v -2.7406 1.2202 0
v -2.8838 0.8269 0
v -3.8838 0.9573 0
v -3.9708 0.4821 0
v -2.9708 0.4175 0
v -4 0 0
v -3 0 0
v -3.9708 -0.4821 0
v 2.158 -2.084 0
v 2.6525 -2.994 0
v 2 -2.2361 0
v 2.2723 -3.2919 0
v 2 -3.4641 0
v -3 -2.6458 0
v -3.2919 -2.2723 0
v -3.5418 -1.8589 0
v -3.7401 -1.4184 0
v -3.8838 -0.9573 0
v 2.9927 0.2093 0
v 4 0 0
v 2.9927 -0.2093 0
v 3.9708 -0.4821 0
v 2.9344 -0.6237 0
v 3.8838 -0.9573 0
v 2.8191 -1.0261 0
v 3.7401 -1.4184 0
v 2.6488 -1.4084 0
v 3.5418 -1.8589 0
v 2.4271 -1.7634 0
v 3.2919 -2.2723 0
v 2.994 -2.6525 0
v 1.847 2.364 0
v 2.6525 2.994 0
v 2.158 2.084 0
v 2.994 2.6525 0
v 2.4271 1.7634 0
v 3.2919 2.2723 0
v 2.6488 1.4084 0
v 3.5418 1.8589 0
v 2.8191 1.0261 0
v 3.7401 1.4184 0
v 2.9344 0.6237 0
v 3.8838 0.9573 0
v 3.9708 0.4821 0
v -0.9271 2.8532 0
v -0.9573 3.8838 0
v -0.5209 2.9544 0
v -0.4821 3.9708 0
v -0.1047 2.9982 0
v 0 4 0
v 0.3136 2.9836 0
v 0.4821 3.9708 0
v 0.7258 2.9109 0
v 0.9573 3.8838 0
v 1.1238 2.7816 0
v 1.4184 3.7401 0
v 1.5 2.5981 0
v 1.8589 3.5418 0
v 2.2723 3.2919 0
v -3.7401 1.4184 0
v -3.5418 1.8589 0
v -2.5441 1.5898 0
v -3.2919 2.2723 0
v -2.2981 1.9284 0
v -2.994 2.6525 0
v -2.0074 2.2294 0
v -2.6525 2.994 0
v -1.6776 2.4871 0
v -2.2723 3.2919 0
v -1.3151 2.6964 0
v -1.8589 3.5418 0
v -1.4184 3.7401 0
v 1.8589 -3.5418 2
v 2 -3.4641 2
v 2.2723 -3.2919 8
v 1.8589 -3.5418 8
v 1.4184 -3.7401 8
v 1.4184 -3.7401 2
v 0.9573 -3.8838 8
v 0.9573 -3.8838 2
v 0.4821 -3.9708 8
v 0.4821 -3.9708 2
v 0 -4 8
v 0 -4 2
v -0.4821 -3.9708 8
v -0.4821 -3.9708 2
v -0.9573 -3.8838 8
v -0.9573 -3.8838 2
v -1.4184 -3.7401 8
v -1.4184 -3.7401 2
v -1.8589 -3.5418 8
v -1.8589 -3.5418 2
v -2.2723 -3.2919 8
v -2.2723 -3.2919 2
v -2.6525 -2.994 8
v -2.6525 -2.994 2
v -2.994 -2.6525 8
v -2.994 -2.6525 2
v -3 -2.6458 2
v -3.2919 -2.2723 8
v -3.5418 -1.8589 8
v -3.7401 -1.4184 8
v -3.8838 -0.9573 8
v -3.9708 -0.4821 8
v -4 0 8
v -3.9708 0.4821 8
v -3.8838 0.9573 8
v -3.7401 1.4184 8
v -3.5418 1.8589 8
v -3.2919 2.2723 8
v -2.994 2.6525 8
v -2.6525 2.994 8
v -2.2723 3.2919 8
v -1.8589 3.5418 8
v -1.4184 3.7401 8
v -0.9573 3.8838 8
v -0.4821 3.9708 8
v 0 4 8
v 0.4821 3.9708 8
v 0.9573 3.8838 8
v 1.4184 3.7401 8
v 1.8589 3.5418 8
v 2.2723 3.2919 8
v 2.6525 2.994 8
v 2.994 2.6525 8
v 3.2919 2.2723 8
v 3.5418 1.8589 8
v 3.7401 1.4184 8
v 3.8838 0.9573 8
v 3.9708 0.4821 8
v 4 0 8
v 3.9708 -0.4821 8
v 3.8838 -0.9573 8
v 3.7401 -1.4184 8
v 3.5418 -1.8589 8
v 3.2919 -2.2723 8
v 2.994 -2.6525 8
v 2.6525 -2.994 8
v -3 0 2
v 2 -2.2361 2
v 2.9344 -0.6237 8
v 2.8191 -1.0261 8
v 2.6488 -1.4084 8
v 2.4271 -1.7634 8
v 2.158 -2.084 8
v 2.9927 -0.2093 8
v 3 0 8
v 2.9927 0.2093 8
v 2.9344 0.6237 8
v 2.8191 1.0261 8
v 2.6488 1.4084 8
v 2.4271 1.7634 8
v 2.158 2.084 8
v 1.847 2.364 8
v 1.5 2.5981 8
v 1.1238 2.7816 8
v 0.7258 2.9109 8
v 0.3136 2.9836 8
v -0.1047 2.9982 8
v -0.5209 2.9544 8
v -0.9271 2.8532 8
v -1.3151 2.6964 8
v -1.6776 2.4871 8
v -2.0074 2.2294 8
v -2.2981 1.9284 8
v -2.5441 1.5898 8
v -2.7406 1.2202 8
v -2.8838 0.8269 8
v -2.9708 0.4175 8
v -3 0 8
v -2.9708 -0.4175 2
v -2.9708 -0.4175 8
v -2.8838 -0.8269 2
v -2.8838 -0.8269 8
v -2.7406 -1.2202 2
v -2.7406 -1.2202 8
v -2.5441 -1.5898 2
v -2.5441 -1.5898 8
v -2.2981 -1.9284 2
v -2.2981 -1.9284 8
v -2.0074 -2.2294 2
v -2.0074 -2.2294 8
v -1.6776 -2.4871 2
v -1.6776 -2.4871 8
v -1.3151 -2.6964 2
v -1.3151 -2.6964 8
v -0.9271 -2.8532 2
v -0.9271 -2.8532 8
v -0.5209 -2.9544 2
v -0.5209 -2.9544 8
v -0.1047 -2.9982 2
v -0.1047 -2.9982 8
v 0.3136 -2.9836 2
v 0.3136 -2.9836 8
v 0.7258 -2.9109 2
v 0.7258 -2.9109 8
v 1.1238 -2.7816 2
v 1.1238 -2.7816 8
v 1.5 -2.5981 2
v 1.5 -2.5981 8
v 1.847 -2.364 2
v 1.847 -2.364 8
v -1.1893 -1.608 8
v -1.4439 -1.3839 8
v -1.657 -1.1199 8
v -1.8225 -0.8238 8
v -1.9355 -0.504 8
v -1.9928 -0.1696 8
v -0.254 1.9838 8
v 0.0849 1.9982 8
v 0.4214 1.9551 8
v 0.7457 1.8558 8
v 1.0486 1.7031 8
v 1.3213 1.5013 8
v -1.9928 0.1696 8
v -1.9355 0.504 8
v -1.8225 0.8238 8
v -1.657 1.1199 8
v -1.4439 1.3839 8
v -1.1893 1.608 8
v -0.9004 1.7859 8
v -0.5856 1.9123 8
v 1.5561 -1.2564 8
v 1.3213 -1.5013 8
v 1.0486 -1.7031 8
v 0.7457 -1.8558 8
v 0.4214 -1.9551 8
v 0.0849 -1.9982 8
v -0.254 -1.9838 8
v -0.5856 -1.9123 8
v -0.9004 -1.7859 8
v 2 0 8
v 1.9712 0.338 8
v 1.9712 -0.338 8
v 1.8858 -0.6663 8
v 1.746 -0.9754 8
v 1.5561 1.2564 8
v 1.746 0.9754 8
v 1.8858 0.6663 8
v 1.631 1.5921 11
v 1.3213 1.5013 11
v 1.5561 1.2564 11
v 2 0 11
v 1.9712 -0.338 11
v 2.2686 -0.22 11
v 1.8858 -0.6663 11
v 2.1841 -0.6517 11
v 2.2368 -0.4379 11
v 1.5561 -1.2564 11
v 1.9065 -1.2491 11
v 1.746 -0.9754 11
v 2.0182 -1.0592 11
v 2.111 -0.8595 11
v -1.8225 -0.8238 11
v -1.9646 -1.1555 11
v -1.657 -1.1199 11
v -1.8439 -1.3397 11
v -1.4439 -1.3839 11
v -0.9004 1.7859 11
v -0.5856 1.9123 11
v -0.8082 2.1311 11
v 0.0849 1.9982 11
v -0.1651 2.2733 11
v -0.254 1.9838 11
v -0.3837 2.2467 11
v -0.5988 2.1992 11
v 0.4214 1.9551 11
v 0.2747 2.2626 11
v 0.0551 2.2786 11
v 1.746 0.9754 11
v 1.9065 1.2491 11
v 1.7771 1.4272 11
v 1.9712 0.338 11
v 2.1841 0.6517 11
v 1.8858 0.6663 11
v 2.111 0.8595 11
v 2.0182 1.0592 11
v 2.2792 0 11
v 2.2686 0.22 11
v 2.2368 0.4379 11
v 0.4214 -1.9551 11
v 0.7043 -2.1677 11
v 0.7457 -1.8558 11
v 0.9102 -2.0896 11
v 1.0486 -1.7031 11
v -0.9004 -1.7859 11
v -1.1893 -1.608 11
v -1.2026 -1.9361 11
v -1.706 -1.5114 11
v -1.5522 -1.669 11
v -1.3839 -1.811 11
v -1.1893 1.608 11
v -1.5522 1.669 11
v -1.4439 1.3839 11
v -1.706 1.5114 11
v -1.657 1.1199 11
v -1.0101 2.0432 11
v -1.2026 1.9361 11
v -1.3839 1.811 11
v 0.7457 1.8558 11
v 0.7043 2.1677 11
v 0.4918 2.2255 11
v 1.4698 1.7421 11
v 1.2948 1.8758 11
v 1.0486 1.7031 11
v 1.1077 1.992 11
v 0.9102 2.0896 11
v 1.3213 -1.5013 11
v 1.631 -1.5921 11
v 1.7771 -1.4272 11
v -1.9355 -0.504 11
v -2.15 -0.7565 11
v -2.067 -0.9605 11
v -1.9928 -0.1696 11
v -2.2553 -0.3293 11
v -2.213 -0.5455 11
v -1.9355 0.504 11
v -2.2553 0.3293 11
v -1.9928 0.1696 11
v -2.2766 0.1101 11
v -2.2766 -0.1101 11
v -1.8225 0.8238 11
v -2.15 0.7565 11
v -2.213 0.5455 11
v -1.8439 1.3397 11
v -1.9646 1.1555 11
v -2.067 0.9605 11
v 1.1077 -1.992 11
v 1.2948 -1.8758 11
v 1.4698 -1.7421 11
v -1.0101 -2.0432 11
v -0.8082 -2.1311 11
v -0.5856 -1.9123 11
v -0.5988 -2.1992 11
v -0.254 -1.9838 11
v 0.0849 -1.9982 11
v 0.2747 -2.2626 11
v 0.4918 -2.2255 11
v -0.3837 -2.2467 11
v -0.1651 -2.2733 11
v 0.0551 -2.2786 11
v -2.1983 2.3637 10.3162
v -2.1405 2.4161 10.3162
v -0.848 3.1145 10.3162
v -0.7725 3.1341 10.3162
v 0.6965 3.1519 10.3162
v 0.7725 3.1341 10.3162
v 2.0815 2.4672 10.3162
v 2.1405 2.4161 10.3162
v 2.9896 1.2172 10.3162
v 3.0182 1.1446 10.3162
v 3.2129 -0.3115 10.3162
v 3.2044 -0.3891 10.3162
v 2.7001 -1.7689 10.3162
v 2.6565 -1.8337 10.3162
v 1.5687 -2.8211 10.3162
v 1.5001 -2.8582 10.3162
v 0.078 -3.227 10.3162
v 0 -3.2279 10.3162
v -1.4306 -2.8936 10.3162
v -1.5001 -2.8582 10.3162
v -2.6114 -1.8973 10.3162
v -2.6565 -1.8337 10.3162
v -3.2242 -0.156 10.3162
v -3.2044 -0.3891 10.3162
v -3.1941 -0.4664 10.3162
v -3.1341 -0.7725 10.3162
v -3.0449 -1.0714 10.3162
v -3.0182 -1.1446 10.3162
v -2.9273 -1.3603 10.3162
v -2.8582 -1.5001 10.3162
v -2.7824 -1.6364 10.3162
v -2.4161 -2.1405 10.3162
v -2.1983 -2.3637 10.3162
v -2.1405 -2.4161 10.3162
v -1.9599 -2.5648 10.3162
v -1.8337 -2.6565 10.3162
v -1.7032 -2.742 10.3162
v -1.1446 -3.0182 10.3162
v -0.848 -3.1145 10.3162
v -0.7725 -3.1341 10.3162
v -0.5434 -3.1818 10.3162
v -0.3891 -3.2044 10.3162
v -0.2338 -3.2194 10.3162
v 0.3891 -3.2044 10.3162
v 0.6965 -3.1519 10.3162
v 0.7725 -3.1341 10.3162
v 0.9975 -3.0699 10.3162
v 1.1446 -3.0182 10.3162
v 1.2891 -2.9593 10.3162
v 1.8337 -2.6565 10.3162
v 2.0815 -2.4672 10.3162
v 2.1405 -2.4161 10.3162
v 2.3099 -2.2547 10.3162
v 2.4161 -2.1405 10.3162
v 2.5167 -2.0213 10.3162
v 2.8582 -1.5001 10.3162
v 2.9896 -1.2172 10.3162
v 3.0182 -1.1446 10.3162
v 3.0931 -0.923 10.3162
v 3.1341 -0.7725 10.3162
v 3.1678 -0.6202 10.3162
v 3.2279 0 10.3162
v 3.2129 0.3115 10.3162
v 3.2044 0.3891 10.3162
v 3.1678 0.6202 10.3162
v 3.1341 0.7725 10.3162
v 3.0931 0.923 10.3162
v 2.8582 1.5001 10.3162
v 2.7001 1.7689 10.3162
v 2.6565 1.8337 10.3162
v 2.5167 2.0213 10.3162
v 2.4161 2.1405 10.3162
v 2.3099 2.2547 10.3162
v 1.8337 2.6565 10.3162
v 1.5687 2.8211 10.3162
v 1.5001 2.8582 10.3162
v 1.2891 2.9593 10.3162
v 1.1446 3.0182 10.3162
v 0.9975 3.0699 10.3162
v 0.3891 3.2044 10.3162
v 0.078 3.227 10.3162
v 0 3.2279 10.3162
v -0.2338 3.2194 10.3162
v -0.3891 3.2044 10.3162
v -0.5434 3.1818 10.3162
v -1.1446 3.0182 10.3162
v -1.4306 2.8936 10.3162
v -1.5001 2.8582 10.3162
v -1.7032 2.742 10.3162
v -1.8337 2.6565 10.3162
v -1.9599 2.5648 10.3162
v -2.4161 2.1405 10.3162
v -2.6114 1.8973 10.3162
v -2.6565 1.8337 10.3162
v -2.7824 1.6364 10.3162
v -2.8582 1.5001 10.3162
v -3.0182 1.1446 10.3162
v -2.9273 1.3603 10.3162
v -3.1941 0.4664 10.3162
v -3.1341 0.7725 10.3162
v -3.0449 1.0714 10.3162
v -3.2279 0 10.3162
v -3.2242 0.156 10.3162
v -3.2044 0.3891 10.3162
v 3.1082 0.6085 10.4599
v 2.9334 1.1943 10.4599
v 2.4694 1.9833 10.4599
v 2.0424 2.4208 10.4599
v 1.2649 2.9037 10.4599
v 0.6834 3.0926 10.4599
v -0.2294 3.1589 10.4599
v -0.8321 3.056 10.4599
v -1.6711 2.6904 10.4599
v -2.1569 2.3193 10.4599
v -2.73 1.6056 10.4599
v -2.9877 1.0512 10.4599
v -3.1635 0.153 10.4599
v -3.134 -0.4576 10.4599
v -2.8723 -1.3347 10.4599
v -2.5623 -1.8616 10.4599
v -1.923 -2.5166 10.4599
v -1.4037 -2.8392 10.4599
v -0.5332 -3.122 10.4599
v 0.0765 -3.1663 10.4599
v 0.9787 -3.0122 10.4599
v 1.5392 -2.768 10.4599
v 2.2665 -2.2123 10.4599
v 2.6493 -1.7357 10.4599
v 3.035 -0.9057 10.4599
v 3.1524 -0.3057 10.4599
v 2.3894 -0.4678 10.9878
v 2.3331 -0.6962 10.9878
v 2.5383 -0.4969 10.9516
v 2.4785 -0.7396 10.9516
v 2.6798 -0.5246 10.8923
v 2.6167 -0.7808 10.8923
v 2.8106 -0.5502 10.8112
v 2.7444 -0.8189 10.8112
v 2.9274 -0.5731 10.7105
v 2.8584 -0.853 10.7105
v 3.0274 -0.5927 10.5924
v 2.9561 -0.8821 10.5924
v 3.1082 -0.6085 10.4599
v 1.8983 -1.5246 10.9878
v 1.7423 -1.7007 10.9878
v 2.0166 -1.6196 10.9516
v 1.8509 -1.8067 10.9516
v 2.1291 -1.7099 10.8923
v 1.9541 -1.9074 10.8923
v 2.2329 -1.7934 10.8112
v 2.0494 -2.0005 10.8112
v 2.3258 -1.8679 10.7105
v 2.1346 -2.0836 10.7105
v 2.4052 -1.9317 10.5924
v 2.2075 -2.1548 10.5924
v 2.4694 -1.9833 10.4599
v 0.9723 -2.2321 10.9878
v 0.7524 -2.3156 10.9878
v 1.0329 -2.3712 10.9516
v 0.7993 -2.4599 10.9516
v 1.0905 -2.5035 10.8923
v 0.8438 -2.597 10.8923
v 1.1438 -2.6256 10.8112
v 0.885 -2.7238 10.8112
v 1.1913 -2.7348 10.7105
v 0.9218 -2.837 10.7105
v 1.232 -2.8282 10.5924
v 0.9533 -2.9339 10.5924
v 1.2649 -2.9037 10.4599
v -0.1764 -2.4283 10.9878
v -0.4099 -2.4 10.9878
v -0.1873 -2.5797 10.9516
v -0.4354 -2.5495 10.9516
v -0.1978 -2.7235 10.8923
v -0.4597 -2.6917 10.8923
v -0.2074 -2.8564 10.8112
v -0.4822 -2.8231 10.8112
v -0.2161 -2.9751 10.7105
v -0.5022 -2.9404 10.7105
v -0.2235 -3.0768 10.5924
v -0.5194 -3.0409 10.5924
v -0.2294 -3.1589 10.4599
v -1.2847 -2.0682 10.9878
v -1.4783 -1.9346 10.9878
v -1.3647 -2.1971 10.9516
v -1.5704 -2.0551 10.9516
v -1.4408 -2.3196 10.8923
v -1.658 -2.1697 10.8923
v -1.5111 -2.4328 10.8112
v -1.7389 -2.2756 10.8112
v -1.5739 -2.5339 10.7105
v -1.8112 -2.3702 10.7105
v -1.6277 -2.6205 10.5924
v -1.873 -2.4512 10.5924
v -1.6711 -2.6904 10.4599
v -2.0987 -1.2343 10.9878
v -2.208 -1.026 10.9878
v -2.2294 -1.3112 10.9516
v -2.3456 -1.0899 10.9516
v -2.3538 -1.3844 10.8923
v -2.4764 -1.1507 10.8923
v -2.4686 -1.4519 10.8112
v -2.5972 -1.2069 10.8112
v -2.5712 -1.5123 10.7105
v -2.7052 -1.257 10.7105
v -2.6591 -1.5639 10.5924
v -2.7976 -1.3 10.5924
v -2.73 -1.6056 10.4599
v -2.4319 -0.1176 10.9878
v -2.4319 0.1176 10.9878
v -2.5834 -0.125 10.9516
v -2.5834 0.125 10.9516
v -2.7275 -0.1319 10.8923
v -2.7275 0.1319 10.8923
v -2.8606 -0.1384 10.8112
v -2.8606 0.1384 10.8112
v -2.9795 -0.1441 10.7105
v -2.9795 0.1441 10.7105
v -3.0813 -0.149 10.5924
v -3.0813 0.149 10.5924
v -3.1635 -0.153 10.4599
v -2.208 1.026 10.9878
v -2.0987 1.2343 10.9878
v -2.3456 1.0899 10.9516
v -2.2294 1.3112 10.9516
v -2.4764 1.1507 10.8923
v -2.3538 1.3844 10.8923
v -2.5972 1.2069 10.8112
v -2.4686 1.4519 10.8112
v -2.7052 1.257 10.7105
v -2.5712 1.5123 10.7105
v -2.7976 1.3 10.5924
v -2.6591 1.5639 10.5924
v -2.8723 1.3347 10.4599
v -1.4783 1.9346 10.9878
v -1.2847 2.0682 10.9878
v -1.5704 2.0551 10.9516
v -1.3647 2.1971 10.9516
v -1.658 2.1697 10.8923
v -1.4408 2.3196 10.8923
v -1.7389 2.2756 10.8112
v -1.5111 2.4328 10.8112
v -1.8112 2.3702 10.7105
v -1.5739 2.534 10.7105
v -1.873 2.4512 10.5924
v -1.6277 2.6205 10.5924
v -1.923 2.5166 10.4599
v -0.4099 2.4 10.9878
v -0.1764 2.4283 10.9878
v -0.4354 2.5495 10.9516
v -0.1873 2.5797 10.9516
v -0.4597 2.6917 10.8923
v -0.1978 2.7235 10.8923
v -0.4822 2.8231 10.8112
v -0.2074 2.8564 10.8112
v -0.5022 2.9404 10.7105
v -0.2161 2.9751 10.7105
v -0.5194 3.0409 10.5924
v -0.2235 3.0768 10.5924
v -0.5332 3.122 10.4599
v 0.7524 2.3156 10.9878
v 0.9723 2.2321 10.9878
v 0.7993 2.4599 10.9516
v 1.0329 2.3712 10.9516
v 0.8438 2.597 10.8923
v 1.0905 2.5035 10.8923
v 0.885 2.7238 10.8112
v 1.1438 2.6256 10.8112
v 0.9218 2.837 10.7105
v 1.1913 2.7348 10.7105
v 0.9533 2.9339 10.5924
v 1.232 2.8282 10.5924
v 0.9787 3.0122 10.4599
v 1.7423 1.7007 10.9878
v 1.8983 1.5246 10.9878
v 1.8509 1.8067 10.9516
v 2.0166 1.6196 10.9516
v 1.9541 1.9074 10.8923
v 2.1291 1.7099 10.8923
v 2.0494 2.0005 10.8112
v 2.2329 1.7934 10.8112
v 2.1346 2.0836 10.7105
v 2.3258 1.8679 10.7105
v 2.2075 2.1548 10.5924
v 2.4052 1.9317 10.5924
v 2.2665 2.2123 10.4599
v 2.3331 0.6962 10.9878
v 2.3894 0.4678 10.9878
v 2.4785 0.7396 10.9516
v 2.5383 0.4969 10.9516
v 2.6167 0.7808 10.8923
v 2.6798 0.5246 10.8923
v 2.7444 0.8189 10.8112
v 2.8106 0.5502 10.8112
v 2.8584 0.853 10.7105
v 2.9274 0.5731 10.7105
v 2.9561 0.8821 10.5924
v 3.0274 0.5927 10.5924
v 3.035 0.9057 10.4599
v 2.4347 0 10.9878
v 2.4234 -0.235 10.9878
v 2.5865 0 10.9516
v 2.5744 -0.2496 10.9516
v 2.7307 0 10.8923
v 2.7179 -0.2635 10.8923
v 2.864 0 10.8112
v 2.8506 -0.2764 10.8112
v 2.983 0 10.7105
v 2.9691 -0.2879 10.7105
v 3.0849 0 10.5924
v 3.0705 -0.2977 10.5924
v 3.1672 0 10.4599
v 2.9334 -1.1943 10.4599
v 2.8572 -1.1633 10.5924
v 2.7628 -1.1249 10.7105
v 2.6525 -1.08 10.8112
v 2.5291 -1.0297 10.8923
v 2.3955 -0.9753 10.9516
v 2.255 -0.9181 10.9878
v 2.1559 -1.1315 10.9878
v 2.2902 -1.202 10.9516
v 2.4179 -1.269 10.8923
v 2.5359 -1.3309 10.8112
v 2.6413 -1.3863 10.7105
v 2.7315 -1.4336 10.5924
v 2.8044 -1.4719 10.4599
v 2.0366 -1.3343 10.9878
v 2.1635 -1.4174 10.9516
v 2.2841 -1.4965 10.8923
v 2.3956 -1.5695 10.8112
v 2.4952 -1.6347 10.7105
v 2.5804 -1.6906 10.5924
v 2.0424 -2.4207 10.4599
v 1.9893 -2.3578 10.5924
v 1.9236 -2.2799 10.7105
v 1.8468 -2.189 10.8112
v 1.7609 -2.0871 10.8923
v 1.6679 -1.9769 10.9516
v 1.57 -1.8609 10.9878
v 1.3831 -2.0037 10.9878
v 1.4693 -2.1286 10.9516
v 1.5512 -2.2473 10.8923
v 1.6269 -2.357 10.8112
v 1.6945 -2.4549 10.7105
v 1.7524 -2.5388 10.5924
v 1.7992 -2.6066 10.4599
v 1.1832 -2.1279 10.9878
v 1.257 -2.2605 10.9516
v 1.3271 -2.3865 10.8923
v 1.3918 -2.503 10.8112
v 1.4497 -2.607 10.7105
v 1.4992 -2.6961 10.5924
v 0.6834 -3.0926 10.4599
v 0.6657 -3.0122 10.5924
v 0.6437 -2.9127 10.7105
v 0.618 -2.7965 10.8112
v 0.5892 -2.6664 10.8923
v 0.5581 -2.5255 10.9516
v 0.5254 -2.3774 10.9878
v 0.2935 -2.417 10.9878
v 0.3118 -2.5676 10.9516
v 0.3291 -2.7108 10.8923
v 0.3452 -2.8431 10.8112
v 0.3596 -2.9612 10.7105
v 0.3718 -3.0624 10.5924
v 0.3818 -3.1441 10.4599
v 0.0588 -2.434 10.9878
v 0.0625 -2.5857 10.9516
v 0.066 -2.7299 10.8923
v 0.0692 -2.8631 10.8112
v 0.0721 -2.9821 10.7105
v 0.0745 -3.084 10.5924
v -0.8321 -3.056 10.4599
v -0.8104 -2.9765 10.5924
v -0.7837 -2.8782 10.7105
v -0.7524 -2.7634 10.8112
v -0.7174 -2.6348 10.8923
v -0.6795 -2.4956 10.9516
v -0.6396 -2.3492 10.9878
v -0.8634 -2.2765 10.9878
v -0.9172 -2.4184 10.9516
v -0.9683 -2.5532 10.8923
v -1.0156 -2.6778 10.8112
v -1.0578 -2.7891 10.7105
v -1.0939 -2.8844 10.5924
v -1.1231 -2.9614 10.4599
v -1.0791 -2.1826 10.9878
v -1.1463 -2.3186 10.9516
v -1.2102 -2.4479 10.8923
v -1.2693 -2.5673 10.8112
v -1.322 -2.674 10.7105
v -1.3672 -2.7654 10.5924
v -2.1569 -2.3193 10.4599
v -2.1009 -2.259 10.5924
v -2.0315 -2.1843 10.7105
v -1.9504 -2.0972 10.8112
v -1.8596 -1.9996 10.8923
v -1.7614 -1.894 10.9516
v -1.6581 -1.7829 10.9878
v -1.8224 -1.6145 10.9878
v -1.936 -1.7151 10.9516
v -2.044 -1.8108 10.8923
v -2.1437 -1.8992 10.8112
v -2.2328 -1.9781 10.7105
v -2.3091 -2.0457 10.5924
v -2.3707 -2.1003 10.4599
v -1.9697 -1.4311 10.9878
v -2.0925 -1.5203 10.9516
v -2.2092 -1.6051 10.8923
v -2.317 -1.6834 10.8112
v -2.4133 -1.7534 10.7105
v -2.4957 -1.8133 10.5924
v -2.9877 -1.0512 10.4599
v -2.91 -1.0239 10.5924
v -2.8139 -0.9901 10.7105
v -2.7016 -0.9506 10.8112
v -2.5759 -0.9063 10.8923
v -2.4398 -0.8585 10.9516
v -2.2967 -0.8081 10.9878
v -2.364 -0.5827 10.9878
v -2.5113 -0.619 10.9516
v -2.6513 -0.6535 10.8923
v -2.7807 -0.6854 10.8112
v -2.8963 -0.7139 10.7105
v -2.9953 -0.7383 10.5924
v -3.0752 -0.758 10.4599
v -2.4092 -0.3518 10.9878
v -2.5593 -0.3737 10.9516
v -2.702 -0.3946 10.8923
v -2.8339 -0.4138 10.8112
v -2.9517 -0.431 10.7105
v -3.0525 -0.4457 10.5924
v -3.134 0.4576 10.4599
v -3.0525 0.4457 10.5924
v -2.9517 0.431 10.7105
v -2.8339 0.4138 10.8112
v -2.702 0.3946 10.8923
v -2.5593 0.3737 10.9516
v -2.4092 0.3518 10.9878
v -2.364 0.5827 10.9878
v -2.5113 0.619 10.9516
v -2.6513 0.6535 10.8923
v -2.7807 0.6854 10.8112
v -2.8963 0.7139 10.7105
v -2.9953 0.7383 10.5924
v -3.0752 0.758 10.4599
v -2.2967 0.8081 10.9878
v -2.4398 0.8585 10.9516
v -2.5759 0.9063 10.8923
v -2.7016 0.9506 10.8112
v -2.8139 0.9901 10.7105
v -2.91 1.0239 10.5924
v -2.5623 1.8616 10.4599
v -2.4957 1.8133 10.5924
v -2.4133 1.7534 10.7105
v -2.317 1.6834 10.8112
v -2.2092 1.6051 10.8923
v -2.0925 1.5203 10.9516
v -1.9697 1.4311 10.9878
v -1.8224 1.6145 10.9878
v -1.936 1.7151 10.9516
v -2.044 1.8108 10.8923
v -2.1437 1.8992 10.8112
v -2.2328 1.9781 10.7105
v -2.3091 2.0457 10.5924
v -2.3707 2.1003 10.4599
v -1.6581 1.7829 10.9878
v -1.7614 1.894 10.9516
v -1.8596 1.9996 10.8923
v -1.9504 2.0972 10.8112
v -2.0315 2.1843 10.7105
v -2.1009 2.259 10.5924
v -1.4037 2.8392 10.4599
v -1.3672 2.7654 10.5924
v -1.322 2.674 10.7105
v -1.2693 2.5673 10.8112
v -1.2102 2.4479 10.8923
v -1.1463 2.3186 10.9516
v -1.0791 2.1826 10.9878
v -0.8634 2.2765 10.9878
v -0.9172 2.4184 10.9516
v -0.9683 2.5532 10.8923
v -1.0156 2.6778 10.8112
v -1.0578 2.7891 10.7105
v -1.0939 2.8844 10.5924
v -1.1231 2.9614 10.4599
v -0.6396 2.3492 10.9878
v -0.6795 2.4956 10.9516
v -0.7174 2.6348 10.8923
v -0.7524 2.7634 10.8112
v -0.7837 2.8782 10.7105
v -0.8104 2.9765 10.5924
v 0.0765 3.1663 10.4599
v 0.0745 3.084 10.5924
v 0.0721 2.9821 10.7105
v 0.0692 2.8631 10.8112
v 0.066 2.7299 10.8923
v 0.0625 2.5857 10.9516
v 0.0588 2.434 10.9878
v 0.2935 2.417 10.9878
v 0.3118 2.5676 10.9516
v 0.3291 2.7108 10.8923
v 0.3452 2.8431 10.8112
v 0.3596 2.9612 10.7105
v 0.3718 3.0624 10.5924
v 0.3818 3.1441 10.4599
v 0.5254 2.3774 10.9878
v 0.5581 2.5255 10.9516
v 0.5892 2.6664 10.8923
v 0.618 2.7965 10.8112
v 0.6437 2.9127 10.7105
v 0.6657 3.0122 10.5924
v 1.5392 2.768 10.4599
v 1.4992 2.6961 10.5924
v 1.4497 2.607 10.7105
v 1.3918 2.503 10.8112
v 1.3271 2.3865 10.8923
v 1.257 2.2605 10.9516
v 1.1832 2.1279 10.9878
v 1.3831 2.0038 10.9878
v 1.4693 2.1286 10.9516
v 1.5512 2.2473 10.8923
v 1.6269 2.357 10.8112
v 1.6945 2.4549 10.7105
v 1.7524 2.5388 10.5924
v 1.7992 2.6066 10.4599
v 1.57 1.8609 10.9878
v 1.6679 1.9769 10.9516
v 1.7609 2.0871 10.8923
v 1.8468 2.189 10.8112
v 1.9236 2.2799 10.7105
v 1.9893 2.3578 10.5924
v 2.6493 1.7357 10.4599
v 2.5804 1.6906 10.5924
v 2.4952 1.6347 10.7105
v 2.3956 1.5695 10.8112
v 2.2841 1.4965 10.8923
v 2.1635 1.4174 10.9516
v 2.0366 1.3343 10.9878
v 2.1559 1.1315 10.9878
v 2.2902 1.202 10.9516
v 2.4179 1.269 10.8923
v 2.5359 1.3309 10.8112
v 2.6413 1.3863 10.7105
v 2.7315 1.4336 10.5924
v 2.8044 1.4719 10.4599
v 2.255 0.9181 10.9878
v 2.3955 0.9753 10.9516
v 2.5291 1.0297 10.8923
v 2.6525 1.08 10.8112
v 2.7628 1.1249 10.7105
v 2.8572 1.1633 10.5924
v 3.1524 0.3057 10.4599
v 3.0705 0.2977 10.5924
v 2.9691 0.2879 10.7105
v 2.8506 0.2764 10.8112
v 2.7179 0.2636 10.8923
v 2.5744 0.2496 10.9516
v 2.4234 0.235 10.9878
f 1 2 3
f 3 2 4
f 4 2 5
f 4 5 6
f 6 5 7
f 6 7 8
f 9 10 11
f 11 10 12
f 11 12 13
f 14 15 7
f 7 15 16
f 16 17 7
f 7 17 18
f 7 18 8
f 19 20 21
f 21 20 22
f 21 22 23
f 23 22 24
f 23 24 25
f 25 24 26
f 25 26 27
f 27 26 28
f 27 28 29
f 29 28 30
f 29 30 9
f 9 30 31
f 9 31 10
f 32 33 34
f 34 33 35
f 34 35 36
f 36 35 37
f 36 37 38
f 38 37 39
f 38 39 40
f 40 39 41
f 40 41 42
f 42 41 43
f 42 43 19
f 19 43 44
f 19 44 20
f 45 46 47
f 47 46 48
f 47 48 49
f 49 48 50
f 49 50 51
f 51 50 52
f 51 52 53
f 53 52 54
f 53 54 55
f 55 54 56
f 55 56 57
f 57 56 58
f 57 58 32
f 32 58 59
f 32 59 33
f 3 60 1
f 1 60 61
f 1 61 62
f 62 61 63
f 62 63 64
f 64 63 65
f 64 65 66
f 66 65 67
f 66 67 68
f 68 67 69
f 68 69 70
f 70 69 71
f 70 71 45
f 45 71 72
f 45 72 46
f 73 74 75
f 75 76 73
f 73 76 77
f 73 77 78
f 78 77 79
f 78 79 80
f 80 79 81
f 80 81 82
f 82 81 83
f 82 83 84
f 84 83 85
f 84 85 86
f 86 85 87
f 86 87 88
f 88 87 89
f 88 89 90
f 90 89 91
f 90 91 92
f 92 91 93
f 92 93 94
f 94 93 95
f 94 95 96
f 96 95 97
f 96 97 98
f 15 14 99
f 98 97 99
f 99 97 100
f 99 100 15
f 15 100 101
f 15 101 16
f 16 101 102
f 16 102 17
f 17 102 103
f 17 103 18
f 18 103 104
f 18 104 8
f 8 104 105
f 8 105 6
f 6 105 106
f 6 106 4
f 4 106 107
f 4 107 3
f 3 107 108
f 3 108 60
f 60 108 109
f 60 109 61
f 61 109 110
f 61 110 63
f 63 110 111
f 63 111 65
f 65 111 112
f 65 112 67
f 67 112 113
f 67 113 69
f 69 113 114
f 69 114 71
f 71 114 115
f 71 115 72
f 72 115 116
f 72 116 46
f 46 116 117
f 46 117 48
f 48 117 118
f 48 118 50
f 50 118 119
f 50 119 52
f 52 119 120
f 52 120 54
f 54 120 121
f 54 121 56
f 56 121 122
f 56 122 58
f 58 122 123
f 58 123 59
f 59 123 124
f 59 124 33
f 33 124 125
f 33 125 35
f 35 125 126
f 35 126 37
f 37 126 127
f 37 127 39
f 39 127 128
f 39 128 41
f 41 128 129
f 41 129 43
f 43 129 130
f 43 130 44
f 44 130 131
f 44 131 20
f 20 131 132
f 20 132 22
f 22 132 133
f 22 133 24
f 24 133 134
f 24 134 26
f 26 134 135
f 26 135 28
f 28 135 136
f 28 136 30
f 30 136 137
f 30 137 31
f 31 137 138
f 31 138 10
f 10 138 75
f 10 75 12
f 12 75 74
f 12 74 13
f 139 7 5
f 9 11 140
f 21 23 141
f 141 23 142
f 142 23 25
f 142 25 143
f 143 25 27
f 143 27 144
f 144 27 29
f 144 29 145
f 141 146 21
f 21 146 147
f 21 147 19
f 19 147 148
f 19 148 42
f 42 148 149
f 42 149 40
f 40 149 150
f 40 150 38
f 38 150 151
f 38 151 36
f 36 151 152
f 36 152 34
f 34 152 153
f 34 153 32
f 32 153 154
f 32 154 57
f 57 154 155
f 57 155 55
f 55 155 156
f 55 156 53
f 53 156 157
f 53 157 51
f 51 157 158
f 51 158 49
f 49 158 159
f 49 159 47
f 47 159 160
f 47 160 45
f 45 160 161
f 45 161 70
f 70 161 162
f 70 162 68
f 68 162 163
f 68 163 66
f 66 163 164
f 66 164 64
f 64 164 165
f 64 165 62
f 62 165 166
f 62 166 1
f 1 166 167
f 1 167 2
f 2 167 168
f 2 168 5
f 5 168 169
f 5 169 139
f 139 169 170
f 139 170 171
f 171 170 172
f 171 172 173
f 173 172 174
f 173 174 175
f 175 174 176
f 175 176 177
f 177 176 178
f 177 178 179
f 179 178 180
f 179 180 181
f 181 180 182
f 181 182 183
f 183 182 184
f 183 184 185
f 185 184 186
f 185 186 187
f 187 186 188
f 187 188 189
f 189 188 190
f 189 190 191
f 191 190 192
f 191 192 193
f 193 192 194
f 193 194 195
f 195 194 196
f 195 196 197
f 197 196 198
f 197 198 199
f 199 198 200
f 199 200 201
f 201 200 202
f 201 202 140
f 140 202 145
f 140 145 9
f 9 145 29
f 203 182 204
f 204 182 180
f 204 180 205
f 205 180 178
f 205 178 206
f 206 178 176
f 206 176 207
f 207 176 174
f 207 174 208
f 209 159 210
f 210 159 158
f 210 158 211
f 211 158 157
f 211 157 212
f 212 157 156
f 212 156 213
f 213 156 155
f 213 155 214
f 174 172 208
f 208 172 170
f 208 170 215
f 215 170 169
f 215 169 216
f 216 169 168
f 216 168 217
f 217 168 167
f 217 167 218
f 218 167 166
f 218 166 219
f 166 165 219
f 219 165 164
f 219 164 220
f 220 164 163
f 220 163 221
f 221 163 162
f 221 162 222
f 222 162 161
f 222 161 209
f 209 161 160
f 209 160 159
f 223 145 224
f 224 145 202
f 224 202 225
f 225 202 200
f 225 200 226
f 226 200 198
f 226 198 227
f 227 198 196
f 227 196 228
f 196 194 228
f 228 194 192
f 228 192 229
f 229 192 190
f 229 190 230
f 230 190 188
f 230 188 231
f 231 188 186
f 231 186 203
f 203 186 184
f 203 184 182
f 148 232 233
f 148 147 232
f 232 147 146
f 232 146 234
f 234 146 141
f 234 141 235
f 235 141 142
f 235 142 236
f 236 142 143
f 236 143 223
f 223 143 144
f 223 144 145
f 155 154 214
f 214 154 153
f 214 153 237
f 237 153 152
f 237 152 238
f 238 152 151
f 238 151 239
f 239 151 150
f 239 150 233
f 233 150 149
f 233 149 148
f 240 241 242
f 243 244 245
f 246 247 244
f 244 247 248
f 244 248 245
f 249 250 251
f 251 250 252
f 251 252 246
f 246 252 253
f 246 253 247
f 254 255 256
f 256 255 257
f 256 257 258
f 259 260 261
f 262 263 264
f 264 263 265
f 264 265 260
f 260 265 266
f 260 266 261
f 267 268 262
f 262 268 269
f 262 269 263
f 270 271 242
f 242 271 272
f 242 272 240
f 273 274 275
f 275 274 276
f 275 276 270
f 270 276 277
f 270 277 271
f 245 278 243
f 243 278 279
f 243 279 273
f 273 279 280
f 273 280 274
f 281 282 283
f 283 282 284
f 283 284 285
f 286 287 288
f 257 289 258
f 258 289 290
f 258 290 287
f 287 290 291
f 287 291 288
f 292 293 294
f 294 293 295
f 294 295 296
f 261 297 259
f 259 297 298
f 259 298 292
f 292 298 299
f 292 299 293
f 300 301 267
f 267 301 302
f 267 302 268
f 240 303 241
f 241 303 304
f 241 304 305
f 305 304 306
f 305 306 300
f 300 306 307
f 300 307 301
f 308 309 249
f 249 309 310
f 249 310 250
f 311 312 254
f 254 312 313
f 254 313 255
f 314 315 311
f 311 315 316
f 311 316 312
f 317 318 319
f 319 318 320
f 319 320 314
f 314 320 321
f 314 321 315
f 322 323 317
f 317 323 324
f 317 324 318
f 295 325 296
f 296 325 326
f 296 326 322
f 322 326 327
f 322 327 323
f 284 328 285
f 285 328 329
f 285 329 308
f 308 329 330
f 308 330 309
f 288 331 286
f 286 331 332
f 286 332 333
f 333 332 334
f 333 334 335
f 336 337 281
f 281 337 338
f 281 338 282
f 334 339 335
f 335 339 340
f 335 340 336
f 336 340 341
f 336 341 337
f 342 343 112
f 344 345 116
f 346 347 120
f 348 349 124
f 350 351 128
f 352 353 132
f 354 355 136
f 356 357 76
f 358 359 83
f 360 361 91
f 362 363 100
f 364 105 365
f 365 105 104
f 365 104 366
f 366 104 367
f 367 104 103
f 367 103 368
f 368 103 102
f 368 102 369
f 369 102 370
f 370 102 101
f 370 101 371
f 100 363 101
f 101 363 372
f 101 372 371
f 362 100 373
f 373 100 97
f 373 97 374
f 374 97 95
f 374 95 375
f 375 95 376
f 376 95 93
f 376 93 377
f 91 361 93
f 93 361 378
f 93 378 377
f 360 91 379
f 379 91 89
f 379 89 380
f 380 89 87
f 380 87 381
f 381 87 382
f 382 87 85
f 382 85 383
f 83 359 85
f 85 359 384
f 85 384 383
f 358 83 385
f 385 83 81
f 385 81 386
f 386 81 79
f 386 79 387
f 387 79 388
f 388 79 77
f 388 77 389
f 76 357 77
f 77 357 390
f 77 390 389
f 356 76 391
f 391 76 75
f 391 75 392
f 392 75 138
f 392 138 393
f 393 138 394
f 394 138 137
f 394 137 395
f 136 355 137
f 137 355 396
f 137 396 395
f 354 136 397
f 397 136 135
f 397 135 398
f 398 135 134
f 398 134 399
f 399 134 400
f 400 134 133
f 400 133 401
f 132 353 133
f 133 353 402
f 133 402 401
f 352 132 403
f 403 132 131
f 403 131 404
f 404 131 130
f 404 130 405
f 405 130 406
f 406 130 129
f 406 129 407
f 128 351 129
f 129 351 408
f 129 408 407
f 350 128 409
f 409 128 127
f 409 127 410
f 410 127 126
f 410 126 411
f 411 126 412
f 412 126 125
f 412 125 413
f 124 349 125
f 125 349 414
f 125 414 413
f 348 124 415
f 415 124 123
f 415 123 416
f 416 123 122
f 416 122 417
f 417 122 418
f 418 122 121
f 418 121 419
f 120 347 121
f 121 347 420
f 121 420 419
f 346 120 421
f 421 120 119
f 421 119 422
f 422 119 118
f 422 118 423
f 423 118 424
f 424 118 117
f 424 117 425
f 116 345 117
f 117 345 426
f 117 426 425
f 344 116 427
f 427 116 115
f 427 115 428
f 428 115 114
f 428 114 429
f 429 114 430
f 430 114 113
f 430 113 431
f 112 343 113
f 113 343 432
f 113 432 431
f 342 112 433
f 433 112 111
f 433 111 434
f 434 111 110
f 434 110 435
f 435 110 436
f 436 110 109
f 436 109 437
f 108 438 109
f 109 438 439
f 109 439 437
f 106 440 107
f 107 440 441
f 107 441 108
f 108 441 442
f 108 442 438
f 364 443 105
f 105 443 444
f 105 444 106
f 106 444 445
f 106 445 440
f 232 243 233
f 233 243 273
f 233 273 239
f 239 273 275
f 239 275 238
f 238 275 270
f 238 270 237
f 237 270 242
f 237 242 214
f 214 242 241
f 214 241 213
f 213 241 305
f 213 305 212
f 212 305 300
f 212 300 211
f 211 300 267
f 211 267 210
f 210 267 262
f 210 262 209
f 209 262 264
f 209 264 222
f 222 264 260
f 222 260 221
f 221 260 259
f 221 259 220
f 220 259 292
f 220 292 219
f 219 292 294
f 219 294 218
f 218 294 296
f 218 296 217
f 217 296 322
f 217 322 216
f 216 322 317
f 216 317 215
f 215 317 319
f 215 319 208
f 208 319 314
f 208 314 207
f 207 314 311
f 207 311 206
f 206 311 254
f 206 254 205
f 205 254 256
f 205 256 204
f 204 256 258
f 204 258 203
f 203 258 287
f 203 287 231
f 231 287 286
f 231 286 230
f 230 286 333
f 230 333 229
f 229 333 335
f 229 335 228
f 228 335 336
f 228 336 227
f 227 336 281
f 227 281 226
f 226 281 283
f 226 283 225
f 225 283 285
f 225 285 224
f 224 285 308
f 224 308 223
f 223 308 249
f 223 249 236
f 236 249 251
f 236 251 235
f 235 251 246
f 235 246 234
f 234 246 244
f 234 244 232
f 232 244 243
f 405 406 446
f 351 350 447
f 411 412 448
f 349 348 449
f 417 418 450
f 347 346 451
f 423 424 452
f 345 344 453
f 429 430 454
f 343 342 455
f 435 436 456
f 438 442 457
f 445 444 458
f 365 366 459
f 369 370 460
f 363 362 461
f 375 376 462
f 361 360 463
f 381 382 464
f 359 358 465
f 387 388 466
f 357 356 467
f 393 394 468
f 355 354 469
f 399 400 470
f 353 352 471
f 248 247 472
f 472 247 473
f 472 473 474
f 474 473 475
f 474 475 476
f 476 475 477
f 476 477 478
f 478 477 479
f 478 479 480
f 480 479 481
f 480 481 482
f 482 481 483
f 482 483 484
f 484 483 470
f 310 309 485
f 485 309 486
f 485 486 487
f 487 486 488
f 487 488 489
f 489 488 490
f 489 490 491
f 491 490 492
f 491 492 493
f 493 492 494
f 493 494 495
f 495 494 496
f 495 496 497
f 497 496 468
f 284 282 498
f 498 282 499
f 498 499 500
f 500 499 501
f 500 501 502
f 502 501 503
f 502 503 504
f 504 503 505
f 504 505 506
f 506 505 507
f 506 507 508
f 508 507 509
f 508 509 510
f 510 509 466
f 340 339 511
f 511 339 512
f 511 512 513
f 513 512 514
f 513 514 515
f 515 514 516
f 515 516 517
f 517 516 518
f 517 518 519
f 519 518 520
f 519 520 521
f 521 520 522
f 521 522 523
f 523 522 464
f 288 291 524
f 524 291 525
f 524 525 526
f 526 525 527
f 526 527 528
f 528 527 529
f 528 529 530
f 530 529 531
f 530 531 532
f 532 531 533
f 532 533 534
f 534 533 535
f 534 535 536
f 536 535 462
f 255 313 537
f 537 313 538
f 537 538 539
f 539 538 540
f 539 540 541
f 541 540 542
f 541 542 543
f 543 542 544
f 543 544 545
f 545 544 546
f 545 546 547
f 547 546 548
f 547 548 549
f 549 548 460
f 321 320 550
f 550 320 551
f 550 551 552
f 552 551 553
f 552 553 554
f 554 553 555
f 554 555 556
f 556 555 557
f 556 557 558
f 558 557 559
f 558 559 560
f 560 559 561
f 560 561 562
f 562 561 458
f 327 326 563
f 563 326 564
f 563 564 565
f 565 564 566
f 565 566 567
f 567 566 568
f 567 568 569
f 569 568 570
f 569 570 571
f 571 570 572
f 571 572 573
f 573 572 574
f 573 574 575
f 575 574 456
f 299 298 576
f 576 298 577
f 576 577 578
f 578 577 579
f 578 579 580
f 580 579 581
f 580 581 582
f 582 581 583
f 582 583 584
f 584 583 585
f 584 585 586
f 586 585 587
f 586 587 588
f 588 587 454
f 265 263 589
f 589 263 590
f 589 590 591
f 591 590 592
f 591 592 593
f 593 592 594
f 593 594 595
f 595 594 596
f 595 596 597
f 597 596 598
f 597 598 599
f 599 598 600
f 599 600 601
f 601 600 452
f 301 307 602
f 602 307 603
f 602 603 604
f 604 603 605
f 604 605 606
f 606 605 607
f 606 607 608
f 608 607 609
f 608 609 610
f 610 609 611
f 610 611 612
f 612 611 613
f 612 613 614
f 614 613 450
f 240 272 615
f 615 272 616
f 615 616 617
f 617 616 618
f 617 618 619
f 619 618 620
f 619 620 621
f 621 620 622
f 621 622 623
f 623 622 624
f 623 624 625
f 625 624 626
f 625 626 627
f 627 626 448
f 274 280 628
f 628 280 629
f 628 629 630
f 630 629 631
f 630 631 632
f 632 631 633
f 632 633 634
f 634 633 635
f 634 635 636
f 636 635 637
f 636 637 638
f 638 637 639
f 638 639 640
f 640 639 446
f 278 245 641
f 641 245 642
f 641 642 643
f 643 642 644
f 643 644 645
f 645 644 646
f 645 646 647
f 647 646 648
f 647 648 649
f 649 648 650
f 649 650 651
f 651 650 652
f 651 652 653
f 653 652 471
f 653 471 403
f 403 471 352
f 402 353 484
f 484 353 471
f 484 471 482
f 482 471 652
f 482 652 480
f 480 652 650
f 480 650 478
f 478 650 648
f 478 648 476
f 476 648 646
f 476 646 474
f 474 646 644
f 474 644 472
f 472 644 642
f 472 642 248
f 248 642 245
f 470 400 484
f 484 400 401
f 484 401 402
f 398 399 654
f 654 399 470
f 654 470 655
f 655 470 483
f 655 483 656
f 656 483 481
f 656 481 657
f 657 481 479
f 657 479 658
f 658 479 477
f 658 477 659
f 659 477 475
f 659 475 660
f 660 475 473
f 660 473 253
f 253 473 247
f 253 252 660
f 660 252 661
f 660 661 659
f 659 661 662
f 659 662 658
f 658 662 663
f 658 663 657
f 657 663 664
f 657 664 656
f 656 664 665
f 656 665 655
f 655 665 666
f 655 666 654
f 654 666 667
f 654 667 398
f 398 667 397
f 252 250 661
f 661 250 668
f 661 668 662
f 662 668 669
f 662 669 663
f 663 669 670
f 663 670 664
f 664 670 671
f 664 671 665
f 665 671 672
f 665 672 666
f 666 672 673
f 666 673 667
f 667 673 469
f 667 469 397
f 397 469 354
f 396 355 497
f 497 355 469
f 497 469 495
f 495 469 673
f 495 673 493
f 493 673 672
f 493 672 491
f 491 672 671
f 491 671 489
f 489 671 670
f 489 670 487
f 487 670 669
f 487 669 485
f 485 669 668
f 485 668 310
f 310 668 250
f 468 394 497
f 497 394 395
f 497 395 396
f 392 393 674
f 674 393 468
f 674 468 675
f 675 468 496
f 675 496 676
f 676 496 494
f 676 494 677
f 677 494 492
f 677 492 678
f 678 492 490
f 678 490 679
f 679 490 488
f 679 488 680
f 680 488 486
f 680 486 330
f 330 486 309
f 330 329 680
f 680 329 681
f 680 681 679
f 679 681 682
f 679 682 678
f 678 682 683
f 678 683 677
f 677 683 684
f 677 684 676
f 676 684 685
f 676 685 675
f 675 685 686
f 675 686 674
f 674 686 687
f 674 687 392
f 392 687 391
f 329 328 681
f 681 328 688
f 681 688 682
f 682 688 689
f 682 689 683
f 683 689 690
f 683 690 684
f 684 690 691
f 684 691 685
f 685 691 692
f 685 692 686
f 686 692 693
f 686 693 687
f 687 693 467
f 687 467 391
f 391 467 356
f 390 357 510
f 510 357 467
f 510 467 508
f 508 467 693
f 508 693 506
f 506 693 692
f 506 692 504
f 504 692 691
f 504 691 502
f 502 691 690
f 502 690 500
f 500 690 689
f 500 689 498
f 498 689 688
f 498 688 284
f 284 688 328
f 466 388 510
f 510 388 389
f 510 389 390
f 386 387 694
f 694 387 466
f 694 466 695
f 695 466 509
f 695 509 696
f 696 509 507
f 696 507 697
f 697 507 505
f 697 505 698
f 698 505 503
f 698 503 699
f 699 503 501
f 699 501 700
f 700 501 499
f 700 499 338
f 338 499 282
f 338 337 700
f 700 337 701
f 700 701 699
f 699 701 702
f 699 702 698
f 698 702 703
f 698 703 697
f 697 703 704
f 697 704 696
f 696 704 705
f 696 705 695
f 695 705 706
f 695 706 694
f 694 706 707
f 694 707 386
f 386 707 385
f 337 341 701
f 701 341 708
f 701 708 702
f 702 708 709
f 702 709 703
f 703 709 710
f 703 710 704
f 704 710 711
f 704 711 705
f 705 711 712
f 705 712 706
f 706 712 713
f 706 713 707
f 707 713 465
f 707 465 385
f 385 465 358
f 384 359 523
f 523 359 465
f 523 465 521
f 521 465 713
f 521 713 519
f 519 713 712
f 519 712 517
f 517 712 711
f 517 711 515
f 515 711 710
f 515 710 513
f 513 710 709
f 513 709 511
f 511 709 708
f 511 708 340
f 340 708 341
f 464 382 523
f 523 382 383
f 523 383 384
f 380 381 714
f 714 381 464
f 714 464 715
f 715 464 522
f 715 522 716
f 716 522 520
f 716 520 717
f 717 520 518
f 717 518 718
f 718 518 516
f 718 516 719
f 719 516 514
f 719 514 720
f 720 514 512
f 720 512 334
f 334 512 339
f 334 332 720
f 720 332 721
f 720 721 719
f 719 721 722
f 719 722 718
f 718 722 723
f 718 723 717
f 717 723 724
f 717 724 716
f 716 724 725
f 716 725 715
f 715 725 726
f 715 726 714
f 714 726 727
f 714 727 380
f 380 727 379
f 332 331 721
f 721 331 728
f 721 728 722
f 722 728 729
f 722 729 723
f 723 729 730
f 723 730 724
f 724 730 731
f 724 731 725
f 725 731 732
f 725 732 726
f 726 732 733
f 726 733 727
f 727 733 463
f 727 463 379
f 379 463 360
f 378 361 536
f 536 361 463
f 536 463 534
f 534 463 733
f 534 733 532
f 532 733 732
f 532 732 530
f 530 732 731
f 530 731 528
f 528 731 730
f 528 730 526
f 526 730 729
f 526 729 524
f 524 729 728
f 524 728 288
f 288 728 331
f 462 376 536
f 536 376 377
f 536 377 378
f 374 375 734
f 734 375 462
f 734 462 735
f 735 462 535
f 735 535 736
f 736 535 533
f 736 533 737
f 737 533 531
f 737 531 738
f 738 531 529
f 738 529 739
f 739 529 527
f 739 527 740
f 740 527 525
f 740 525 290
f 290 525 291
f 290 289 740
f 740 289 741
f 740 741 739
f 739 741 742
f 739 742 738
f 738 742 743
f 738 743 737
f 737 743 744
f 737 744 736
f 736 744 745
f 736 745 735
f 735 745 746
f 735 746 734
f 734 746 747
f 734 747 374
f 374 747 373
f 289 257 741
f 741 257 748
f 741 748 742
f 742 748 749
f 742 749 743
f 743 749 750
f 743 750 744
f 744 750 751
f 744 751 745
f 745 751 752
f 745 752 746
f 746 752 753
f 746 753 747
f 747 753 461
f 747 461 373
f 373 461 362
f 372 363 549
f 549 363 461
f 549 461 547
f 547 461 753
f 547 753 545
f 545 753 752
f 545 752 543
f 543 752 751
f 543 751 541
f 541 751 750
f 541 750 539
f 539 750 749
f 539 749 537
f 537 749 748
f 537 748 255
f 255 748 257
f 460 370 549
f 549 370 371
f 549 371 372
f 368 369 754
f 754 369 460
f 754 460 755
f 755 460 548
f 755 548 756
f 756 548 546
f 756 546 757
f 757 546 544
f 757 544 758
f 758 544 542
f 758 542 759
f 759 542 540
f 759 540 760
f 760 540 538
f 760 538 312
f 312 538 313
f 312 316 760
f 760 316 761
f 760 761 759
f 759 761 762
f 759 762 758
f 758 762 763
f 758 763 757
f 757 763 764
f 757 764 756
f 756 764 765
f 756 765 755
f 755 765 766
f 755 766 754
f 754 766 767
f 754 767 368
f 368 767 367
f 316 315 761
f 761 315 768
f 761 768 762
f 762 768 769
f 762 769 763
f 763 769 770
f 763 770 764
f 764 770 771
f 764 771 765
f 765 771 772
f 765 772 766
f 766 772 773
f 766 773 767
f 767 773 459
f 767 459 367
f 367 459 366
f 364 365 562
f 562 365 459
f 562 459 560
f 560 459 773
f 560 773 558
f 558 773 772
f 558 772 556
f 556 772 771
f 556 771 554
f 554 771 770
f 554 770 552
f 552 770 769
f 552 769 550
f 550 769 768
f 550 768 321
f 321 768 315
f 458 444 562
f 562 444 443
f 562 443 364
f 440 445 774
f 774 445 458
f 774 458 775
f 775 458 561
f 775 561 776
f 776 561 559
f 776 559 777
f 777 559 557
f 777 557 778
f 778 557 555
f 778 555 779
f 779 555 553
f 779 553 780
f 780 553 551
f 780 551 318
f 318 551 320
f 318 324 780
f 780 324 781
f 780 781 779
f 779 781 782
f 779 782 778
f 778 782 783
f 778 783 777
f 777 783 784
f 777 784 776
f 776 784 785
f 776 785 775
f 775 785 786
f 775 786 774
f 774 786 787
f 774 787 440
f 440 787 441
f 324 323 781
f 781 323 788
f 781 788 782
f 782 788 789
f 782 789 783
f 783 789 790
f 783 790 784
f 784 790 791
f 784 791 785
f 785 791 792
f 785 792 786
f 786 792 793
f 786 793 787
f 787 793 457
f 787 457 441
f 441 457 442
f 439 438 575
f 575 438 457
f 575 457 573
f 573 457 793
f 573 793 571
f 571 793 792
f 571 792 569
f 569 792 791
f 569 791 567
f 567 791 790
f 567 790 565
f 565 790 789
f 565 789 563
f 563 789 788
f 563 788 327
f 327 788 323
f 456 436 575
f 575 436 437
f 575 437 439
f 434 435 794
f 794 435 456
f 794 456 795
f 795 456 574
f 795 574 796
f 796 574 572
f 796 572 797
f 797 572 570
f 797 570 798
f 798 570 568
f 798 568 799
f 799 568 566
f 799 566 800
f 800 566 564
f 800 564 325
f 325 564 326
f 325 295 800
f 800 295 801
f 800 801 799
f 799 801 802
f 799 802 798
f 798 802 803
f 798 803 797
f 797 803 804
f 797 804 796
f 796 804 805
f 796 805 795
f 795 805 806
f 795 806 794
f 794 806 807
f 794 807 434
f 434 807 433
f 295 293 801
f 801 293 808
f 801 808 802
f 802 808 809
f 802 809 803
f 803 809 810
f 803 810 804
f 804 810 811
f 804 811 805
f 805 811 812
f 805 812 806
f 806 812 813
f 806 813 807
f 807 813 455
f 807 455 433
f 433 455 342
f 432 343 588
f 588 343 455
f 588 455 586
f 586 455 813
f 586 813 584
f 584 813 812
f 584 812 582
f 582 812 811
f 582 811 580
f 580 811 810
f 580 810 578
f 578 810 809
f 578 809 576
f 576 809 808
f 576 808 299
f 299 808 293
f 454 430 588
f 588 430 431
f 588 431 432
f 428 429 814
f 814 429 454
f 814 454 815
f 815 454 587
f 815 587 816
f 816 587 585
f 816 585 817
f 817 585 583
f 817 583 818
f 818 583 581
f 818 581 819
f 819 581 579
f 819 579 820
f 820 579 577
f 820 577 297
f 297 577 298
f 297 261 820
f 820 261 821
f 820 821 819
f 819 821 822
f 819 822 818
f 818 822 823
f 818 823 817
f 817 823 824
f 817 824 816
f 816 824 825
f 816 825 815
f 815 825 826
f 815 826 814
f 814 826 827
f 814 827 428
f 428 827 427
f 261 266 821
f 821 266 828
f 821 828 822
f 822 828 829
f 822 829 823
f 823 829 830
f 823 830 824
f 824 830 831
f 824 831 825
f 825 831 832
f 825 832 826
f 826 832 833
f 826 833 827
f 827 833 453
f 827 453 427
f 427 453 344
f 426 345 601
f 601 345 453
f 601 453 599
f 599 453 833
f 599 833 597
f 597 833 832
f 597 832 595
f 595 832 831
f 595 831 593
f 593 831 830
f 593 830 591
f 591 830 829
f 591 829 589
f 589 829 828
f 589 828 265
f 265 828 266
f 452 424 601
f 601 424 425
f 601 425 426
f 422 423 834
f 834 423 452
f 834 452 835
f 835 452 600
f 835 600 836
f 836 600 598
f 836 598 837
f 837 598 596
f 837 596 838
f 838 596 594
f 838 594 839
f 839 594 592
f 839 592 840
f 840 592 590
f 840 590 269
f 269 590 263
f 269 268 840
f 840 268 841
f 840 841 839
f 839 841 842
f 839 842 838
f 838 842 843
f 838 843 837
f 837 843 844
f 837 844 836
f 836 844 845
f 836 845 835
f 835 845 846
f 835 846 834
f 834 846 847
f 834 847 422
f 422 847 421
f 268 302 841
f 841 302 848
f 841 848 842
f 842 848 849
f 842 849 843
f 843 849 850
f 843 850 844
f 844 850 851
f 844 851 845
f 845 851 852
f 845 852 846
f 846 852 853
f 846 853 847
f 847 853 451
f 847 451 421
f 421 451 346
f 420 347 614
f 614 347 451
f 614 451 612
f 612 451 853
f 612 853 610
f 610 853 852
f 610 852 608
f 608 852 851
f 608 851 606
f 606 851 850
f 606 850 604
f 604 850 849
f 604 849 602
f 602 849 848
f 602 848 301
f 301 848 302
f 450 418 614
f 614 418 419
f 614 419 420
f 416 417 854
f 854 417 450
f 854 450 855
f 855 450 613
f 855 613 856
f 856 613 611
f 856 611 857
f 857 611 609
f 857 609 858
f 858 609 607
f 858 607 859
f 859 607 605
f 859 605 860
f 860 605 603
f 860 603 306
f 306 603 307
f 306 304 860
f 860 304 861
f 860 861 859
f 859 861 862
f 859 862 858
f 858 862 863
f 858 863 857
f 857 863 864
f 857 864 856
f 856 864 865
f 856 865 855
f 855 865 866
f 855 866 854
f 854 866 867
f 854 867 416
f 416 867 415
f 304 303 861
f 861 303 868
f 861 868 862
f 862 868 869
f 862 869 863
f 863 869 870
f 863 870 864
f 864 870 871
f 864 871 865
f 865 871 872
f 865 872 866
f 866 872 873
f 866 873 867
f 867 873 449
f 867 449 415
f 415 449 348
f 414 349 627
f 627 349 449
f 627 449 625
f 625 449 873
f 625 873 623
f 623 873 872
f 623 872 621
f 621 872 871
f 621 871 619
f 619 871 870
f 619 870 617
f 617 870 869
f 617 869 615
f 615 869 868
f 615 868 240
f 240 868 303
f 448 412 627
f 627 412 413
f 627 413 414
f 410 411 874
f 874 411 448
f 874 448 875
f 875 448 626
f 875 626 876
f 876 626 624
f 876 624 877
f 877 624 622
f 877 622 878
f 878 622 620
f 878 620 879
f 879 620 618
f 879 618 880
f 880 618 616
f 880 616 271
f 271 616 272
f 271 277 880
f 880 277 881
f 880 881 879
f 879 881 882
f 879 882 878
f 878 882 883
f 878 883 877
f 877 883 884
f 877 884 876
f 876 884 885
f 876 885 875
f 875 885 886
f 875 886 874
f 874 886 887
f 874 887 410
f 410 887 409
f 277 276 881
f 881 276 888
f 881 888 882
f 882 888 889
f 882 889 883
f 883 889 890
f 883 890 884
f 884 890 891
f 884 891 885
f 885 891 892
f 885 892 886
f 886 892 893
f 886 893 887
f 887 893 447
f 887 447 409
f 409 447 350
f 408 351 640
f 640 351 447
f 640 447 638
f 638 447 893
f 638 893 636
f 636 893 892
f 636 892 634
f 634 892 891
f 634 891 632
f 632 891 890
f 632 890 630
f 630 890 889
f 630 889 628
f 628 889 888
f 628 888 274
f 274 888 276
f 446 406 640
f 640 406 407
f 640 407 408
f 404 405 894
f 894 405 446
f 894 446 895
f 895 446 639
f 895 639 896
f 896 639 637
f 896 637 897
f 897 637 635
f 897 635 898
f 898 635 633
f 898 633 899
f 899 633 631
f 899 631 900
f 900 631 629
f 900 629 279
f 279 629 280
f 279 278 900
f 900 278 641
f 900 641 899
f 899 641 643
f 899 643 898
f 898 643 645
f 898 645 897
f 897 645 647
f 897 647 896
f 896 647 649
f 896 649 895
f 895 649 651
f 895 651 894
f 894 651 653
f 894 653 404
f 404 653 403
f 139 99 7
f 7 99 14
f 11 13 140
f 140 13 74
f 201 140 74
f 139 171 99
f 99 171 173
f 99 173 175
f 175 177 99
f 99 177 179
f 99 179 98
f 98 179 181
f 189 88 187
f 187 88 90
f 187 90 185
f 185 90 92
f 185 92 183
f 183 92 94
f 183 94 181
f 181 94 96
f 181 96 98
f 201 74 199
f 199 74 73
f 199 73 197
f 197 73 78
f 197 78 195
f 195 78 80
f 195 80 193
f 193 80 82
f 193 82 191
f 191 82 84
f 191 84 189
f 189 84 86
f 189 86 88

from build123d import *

# Parameters (mm, degrees)
SKETCH1_R           = 4
SKETCH1_R_2         = 3
BOSS_EXTRUDE1_DEPTH = 8
SKETCH2_R           = 4
SKETCH3_R           = 3
SKETCH4_R           = 2
CUT_EXTRUDE1_DEPTH  = 13.369316942
FILLET1_R           = 1
SKETCH5_W           = 5
SKETCH5_H           = 2
CUT_EXTRUDE2_DEPTH  = 6


with BuildPart() as part:
    # Sketch1 → Boss-Extrude1 (new body)
    with BuildSketch(Plane.XY):
        Circle(SKETCH1_R)
        Circle(SKETCH1_R_2, mode=Mode.SUBTRACT)
    extrude(amount=BOSS_EXTRUDE1_DEPTH)

    # Sketch2 → Loft1 section 0
    with BuildSketch(Plane.XY.offset(8)):
        Circle(SKETCH2_R)
    # Sketch3 → Loft1 section 1
    with BuildSketch(Plane.XY.offset(11)):
        Circle(SKETCH3_R)
    loft()

    # Sketch4 → Cut-Extrude1 (cut, through all)
    with BuildSketch(Plane.XY.offset(11)):
        Circle(SKETCH4_R)
    extrude(amount=-CUT_EXTRUDE1_DEPTH, mode=Mode.SUBTRACT)

    # Fillet1
    fillet1_edges = [part.edges().sort_by_distance(p)[0] for p in [
        (-3, 0, 11),
    ]]
    fillet(fillet1_edges, radius=FILLET1_R)

    # Sketch5 → Cut-Extrude2 (cut)
    with BuildSketch(Plane(origin=(0, 0, 0), x_dir=(1, 0, 0), z_dir=(0, 1, 0))):
        with Locations((-0.5, -1)):
            Rectangle(SKETCH5_W, SKETCH5_H)
    extrude(amount=-CUT_EXTRUDE2_DEPTH, mode=Mode.SUBTRACT)


solid = part.part
